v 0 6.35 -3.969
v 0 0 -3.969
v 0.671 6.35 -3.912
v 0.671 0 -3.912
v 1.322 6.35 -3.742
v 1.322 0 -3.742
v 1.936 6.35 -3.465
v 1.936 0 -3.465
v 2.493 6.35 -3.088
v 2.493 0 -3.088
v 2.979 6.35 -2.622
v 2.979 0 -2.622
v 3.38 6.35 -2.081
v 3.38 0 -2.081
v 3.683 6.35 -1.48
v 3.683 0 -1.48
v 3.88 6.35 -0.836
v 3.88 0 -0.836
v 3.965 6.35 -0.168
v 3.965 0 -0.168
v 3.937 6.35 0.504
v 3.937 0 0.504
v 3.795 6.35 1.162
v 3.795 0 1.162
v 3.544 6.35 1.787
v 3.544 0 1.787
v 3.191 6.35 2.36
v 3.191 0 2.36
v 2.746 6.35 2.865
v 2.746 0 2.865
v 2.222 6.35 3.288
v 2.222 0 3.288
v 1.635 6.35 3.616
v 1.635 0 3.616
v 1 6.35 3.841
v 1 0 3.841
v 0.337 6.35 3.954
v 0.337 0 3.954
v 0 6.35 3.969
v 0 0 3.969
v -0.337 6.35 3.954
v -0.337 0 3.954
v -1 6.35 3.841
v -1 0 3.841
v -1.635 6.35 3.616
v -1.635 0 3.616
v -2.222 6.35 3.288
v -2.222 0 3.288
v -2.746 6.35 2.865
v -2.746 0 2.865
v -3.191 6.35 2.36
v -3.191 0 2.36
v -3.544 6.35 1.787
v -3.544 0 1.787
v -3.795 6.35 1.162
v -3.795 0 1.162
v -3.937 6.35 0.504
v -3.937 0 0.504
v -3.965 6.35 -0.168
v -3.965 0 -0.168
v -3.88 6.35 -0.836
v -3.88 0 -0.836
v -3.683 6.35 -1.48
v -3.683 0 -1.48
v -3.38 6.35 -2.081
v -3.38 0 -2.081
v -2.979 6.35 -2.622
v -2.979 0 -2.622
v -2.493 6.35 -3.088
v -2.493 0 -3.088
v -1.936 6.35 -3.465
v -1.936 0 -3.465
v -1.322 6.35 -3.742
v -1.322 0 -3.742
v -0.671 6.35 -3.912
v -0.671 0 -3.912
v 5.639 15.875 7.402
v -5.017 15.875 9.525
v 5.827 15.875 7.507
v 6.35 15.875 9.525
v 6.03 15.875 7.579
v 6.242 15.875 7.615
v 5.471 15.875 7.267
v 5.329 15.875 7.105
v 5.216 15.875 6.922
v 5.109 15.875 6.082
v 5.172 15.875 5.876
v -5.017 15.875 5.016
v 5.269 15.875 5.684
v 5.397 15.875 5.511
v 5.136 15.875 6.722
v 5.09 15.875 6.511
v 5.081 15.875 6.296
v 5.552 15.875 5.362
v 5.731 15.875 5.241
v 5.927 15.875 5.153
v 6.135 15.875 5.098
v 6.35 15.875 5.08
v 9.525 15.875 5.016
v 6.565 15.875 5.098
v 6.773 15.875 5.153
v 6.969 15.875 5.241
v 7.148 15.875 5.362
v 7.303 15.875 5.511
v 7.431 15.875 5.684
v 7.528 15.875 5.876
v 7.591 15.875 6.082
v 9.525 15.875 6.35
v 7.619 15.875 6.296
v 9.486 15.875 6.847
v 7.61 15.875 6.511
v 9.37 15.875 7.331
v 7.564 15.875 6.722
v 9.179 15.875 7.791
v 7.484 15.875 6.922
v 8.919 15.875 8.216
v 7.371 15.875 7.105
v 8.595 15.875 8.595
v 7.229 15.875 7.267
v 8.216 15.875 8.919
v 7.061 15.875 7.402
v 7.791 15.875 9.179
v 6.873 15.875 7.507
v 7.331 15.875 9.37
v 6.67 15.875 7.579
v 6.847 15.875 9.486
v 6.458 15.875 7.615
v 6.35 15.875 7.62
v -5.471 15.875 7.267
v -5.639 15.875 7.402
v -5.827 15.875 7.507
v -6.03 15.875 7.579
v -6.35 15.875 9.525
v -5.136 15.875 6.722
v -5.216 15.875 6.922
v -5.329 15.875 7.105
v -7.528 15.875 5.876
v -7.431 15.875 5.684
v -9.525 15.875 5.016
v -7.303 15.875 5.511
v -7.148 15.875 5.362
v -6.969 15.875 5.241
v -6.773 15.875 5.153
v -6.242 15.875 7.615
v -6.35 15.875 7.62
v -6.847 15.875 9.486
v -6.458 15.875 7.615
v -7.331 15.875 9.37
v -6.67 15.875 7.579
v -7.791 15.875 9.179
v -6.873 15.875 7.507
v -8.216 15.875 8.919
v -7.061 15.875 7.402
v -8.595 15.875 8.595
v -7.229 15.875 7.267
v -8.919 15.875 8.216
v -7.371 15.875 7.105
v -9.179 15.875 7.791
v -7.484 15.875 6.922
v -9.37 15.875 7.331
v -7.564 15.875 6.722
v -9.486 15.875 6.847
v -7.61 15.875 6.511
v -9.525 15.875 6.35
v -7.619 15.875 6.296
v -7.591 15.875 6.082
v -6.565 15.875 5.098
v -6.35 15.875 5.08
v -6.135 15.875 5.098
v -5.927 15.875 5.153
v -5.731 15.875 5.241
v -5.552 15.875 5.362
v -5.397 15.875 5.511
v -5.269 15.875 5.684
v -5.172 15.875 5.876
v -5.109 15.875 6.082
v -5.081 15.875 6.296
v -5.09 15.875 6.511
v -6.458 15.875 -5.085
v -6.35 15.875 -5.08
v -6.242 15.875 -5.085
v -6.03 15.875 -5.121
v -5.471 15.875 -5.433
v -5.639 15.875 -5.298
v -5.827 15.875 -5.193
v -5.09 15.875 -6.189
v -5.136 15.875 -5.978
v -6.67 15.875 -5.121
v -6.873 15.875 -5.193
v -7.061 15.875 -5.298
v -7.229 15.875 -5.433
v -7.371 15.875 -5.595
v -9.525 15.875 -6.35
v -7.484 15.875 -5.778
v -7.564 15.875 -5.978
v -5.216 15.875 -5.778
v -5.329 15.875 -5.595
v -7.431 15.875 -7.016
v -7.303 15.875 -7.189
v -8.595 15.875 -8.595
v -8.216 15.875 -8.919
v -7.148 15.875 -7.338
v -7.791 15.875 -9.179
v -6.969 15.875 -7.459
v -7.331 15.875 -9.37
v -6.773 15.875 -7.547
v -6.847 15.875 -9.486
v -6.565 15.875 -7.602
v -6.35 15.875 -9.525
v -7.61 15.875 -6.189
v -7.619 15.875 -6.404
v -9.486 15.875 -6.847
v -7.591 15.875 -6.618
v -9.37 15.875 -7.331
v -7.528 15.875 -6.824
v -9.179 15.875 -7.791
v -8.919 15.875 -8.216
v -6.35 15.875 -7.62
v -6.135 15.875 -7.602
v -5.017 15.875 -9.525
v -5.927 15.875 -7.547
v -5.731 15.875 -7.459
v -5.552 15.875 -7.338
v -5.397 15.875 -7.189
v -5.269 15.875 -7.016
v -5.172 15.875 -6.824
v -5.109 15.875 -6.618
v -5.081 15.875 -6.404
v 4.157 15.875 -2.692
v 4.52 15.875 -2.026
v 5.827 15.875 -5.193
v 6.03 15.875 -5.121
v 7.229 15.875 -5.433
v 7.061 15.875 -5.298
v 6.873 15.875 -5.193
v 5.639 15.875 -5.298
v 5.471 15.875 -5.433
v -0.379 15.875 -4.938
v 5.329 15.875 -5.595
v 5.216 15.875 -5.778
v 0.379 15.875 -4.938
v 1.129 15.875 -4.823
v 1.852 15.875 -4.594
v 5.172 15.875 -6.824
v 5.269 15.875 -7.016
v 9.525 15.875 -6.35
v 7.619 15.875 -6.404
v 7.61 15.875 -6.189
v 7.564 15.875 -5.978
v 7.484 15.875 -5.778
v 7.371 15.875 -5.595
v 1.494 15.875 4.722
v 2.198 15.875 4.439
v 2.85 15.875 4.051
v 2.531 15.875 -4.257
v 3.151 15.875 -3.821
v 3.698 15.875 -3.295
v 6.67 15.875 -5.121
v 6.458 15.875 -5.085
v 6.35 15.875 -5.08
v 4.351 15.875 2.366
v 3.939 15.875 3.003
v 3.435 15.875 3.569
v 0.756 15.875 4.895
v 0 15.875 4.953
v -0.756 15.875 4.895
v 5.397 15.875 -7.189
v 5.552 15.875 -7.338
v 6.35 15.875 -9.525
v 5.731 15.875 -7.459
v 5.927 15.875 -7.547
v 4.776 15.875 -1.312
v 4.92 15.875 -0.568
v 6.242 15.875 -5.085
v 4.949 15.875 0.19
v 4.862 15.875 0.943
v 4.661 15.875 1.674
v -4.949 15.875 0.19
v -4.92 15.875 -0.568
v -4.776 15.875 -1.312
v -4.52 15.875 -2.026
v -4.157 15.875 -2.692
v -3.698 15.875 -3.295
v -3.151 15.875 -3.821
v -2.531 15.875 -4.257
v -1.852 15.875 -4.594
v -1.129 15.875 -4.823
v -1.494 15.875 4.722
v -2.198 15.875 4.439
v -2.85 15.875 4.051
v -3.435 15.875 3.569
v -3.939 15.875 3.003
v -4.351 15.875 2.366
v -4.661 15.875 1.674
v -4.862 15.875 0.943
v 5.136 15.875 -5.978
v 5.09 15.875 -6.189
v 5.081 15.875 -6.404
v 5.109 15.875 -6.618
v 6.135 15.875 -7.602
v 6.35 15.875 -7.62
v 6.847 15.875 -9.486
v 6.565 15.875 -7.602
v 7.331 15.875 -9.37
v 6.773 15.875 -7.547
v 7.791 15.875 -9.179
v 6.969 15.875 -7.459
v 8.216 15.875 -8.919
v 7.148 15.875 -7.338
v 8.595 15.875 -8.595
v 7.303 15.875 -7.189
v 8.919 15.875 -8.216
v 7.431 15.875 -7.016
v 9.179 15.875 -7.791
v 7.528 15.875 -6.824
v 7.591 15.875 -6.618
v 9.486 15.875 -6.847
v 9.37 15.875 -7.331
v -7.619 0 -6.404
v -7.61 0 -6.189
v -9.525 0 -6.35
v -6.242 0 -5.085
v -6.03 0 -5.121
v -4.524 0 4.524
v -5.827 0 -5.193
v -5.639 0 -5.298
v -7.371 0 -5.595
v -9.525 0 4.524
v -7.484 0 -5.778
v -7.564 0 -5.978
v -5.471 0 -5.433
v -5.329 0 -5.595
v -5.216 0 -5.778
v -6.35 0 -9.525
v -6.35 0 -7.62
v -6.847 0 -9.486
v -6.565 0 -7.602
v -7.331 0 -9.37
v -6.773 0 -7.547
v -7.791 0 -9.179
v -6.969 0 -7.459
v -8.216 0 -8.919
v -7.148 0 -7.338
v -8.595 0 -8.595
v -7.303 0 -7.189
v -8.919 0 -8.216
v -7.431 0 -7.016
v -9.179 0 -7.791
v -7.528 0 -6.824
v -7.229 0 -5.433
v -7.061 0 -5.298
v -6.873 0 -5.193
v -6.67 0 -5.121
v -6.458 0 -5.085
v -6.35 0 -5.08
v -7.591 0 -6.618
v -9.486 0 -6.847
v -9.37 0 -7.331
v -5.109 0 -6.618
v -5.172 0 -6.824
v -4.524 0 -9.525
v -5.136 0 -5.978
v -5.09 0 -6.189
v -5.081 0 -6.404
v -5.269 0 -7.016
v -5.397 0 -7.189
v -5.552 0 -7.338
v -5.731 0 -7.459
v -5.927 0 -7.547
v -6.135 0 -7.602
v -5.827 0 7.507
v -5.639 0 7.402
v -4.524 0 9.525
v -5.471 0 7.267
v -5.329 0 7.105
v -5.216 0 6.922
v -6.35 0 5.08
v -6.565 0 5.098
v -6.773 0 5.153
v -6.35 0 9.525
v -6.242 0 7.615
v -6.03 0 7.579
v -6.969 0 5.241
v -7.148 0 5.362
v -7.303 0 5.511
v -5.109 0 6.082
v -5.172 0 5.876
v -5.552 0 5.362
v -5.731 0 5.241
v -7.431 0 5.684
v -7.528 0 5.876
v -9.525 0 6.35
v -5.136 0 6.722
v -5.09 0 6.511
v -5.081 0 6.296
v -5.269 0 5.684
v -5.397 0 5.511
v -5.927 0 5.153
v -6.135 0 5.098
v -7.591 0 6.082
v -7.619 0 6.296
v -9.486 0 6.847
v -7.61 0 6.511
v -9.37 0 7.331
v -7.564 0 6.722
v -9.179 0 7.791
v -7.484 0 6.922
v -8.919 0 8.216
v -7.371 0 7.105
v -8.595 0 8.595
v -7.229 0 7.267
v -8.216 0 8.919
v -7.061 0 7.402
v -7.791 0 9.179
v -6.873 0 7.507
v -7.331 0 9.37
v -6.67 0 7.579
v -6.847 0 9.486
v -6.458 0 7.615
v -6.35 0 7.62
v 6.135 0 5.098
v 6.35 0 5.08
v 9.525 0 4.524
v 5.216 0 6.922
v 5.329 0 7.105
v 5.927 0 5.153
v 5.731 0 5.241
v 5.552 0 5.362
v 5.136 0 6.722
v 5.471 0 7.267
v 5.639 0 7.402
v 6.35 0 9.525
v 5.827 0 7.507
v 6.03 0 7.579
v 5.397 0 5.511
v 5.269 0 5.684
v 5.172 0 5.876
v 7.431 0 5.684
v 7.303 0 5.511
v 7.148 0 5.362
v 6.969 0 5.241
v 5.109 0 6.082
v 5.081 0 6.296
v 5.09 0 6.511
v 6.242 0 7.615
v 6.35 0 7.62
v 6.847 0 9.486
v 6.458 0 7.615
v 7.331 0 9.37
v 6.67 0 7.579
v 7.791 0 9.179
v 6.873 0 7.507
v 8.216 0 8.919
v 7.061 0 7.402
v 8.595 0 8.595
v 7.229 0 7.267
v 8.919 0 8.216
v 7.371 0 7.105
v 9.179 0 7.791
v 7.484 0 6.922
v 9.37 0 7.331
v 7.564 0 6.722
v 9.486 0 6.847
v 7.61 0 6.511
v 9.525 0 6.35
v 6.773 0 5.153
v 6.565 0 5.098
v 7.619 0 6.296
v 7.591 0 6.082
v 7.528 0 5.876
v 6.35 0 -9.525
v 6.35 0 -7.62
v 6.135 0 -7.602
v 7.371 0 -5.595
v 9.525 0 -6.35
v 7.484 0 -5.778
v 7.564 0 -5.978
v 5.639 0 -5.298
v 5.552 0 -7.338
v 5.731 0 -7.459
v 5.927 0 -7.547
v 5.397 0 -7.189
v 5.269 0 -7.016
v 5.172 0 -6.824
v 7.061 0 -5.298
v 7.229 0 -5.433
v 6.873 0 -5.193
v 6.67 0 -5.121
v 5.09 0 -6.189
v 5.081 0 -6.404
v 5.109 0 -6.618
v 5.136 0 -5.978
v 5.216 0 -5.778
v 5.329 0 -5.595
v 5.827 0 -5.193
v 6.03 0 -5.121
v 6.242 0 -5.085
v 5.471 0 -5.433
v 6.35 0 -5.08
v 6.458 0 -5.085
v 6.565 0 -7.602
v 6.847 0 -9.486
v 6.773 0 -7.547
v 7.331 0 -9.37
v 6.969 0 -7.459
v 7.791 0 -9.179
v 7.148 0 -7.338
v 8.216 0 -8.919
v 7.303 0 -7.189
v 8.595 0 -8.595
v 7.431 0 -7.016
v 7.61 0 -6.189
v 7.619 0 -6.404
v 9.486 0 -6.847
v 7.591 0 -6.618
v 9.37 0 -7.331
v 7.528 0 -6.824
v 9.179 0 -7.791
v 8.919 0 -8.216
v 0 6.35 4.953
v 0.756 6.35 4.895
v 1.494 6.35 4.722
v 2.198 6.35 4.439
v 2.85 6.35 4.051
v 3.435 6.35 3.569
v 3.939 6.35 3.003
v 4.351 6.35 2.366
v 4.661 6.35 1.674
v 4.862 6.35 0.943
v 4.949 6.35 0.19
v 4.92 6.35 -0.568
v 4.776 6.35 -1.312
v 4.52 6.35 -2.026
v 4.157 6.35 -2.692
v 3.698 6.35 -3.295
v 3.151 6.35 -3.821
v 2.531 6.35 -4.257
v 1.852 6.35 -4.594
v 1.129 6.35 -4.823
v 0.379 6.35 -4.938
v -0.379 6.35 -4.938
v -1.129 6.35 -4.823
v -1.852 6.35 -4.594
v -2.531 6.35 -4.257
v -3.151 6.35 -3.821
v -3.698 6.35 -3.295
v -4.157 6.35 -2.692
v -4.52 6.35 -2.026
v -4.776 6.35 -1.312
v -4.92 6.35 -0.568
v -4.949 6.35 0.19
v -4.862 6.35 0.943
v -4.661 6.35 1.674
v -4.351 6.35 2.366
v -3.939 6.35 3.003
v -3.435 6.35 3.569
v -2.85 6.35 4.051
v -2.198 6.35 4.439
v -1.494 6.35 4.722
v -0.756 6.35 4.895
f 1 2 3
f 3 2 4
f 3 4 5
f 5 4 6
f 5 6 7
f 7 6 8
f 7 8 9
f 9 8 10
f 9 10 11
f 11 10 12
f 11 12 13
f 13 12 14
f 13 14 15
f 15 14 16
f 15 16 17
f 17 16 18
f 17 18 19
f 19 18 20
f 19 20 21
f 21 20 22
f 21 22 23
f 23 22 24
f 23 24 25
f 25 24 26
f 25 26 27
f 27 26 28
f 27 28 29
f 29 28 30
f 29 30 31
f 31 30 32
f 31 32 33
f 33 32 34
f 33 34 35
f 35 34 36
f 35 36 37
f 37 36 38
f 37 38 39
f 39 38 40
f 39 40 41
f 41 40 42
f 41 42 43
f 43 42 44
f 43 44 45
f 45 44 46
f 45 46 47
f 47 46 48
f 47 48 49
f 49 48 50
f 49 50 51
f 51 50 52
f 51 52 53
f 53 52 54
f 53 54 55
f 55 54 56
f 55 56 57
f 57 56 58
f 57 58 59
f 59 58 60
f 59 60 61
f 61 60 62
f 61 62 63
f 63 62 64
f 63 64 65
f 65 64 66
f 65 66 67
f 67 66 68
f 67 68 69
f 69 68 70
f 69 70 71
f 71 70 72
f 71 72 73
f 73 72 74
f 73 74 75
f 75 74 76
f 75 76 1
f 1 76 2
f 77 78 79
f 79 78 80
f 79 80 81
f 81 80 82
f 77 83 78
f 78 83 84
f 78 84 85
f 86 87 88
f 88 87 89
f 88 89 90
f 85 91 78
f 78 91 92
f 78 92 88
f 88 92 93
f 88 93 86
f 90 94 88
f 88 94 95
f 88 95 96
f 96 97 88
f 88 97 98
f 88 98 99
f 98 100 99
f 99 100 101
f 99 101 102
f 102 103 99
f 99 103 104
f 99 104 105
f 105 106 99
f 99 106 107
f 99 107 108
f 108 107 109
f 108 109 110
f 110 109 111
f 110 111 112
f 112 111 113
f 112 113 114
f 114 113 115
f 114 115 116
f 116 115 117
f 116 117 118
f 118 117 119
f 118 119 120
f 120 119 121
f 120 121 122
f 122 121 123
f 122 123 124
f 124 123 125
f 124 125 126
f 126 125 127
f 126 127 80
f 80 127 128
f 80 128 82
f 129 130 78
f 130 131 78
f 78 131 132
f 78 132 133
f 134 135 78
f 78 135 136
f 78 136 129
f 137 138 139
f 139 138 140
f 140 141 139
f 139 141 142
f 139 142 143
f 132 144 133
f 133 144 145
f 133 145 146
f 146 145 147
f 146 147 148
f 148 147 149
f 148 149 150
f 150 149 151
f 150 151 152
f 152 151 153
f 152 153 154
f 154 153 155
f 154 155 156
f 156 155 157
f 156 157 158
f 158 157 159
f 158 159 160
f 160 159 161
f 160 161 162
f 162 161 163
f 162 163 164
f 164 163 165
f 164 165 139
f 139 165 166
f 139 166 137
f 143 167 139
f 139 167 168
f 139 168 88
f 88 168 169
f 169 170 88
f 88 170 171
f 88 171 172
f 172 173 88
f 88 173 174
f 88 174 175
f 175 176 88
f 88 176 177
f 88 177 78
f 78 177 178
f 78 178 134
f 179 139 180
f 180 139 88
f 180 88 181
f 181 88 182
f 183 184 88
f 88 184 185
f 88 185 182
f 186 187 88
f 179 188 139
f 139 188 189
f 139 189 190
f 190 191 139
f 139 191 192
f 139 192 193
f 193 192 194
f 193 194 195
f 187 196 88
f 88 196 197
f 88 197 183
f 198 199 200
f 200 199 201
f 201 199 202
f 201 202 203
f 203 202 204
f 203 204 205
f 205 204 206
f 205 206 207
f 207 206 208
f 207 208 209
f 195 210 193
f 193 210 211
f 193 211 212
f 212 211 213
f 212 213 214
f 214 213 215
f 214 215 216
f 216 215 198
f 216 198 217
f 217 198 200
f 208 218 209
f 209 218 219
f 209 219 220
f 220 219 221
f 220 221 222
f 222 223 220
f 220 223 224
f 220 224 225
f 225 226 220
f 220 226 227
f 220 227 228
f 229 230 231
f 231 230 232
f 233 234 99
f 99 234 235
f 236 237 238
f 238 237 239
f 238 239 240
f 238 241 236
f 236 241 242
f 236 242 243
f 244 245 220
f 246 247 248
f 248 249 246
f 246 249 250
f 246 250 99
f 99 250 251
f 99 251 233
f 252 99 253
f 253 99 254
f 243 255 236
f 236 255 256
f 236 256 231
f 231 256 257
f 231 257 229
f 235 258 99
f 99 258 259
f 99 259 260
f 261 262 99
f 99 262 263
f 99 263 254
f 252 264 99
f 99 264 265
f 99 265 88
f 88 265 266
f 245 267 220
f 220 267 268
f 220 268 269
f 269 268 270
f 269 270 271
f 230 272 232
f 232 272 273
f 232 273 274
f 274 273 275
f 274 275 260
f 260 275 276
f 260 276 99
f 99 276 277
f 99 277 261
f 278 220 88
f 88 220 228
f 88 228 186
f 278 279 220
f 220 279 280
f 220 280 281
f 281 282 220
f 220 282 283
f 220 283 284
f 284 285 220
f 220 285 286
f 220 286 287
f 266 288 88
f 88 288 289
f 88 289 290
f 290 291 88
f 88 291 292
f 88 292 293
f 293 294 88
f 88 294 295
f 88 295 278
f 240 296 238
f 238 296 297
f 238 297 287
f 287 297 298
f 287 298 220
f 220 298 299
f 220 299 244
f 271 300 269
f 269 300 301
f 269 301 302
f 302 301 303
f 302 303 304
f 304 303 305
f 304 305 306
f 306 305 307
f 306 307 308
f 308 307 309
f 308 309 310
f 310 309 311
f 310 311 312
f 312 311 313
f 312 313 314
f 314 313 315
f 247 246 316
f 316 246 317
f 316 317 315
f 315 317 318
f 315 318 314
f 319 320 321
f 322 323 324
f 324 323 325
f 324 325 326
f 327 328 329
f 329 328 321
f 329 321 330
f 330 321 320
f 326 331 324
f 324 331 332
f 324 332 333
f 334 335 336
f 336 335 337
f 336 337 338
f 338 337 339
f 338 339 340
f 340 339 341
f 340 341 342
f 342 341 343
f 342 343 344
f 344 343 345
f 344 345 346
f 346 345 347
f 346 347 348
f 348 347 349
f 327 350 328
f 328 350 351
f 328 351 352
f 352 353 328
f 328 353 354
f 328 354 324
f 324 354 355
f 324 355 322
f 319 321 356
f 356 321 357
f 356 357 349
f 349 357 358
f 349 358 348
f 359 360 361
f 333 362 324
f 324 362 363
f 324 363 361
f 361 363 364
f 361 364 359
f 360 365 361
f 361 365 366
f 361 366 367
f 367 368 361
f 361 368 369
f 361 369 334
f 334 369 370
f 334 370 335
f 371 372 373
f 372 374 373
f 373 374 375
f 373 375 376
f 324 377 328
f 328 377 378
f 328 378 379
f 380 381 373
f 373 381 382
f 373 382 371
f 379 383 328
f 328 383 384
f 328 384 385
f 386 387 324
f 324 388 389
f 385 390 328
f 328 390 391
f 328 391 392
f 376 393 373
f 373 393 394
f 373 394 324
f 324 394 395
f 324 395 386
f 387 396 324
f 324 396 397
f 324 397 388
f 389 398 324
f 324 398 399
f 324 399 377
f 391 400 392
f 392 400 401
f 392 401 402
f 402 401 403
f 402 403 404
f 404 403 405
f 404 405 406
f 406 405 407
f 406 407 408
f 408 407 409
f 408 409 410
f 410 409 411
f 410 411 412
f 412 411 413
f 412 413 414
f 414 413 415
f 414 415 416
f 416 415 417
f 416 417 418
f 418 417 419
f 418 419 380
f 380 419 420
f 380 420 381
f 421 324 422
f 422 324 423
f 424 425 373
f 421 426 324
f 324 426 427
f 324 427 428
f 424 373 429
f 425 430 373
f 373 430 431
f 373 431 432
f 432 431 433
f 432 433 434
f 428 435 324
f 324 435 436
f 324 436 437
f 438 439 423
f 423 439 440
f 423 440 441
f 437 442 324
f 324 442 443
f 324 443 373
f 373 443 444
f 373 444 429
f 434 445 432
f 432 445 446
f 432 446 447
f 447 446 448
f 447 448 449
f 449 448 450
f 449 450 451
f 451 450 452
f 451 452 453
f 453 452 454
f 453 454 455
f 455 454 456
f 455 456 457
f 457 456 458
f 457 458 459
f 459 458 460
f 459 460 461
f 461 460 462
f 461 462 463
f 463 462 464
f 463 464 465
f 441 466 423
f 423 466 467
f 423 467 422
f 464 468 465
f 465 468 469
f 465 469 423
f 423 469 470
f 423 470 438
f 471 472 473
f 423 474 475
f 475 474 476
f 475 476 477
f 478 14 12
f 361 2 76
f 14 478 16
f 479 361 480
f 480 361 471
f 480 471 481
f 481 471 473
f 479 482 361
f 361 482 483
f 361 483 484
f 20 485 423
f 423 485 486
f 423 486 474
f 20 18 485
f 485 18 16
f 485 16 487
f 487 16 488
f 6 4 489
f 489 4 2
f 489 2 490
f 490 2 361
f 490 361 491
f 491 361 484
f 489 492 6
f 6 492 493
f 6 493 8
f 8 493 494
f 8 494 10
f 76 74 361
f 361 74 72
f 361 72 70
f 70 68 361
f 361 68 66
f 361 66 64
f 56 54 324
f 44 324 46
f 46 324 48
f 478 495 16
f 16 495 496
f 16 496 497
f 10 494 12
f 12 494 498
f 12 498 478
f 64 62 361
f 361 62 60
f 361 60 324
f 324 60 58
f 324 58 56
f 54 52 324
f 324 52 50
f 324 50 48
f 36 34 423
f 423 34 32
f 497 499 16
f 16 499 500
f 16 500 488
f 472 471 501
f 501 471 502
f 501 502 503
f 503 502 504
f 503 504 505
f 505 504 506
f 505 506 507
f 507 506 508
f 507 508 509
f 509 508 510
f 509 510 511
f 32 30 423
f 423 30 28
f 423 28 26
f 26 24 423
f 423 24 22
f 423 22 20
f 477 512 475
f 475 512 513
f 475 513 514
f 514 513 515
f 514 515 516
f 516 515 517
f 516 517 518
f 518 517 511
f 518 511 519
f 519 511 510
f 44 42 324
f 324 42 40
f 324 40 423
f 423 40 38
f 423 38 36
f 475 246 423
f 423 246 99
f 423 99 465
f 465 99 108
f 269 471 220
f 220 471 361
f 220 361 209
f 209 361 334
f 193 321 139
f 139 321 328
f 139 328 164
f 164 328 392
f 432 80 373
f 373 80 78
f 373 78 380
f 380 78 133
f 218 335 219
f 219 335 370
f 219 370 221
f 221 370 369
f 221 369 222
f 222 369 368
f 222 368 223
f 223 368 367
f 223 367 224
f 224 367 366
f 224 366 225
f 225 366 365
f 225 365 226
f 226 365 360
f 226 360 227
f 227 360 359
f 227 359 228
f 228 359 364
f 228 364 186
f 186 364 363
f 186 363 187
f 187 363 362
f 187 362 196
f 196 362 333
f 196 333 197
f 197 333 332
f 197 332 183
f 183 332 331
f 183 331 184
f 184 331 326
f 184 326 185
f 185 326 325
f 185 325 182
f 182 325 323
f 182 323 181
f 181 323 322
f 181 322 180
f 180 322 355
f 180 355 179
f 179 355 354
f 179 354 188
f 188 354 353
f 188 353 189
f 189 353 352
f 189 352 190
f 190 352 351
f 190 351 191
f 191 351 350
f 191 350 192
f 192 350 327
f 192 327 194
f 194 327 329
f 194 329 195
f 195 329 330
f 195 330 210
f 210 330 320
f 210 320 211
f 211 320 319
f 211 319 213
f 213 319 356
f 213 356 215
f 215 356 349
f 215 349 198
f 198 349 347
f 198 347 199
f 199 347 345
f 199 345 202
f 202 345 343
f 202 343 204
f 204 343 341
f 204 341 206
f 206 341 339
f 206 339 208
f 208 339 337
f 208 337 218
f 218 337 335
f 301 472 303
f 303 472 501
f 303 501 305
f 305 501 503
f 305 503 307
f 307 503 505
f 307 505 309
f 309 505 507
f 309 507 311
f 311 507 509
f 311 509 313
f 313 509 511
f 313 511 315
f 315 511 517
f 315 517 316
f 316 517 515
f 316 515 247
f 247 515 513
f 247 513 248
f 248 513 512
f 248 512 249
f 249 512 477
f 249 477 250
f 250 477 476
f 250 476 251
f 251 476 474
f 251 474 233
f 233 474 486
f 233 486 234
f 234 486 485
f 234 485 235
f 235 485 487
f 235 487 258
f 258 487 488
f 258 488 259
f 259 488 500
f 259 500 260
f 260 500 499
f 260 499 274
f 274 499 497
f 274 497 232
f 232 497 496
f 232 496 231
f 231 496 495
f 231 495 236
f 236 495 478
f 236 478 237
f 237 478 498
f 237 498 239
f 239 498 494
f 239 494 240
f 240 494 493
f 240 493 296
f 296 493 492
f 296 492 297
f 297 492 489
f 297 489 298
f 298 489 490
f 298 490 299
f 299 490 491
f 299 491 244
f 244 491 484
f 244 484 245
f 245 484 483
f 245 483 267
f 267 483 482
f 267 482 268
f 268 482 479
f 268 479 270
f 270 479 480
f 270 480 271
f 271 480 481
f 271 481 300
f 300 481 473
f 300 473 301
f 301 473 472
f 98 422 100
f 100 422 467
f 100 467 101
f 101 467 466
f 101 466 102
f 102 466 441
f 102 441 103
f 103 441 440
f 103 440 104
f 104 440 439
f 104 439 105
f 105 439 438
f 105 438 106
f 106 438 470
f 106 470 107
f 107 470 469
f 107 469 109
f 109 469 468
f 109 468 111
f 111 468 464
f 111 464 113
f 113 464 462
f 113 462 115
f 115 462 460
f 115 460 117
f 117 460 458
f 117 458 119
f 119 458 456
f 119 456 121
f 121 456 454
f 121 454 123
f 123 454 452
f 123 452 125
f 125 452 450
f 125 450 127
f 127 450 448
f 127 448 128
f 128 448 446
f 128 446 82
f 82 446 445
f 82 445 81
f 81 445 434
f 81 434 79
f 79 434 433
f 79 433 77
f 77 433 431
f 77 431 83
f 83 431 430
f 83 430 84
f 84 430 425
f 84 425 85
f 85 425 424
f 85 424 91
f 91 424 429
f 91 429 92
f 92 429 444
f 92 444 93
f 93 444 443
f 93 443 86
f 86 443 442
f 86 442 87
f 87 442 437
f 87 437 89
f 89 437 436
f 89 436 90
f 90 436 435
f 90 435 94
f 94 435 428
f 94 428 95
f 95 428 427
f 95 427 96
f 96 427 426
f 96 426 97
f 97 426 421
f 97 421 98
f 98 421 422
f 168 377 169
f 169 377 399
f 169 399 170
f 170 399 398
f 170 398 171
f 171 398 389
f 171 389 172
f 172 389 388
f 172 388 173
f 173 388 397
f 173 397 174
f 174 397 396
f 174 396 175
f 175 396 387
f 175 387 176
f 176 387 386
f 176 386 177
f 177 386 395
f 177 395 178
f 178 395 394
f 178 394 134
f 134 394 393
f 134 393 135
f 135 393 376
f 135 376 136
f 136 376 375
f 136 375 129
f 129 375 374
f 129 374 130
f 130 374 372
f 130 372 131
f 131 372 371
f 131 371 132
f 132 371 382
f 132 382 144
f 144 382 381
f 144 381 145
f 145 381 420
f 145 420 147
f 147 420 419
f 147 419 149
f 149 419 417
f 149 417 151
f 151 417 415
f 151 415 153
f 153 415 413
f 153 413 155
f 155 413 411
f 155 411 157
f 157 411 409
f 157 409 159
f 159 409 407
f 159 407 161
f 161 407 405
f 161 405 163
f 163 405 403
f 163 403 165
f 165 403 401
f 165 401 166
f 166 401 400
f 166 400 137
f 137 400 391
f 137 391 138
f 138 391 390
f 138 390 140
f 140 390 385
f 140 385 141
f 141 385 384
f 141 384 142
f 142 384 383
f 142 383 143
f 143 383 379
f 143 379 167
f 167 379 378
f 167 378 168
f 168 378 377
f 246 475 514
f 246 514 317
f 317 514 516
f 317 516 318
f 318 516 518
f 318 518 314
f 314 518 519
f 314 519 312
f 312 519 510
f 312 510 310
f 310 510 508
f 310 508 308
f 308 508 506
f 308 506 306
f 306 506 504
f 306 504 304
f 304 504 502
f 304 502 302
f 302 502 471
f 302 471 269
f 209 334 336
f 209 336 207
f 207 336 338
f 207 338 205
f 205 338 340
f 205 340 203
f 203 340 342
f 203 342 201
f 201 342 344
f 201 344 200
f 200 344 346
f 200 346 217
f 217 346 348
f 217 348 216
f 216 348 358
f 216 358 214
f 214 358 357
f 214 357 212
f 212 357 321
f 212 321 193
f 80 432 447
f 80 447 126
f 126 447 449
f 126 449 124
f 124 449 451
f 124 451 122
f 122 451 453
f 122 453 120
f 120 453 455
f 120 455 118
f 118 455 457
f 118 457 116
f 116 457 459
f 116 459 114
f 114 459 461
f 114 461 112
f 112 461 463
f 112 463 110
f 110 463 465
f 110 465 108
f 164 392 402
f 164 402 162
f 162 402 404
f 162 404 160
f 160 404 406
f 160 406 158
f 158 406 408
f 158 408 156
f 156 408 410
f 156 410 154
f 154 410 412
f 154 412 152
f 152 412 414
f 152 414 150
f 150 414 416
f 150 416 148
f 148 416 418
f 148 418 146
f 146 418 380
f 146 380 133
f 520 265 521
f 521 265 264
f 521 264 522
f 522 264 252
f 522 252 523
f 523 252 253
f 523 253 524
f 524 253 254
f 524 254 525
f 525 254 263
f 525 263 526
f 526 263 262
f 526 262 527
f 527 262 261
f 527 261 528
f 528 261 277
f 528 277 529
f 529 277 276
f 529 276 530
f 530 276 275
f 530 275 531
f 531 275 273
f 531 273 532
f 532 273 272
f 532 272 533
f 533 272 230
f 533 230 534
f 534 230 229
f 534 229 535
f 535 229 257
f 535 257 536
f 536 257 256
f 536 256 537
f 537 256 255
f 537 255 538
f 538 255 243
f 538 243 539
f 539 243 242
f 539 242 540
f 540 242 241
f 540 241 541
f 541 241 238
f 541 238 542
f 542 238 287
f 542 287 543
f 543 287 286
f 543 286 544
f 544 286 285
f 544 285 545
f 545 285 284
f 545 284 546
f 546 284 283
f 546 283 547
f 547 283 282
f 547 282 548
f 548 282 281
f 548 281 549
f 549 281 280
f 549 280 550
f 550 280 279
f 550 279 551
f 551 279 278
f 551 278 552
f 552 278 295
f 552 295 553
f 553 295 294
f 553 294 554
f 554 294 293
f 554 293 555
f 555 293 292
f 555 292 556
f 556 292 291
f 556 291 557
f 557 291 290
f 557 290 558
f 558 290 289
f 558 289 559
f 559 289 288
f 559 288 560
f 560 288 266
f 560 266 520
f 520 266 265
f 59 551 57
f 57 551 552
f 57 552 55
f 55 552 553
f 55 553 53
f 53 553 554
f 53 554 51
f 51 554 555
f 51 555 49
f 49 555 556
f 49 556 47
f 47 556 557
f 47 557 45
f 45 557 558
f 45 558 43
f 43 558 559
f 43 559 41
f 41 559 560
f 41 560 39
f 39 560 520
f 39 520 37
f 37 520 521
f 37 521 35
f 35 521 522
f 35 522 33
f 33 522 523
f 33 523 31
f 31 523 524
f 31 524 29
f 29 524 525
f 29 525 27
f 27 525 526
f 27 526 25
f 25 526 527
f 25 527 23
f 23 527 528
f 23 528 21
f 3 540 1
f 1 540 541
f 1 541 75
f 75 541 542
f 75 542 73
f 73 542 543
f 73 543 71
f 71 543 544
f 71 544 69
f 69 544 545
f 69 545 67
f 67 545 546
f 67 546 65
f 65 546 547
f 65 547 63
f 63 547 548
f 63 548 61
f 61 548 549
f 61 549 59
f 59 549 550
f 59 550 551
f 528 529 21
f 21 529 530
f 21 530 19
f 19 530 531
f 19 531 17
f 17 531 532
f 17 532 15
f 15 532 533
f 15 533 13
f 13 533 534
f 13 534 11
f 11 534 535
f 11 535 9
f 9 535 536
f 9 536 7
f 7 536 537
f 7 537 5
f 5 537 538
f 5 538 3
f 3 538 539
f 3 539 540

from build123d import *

# Parameters (mm, degrees)
SKETCH1_W           = 19.05
SKETCH1_H           = 19.05
SKETCH1_R           = 1.27
SKETCH1_R_2         = 3.96875
BOSS_EXTRUDE1_DEPTH = 15.875
FILLET2_R           = 3.175
SKETCH3_R           = 4.953
CUT_EXTRUDE1_DEPTH  = 9.525


with BuildPart() as part:
    # Sketch1 → Boss-Extrude1 (new body)
    with BuildSketch(Plane(origin=(0, 0, 0), x_dir=(1, 0, 0), z_dir=(0, 1, 0))):
        Rectangle(SKETCH1_W, SKETCH1_H)
        with Locations(Location((-6.35, 6.35, 0), (0, 0, 270))):
            Circle(SKETCH1_R, mode=Mode.SUBTRACT)
        with Locations(Location((6.35, 6.35, 0), (0, 0, 270))):
            Circle(SKETCH1_R, mode=Mode.SUBTRACT)
        with Locations(Location((6.35, -6.35, 0), (0, 0, 270))):
            Circle(SKETCH1_R, mode=Mode.SUBTRACT)
        with Locations(Location((-6.35, -6.35, 0), (0, 0, 270))):
            Circle(SKETCH1_R, mode=Mode.SUBTRACT)
        with Locations(Location((0, 0, 0), (0, 0, 270))):
            Circle(SKETCH1_R_2, mode=Mode.SUBTRACT)
    extrude(amount=BOSS_EXTRUDE1_DEPTH)

    # Fillet2
    fillet2_edges = [part.edges().sort_by_distance(p)[0] for p in [
        (9.525, 7.9375, 9.525),
        (-9.525, 7.9375, 9.525),
        (-9.525, 7.9375, -9.525),
        (9.525, 7.9375, -9.525),
    ]]
    fillet(fillet2_edges, radius=FILLET2_R)

    # Sketch3 → Cut-Extrude1 (cut)
    with BuildSketch(Plane(origin=(0, 15.875, 0), x_dir=(1, 0, 0), z_dir=(0, 1, 0))):
        with Locations(Location((0, 0, 0), (0, 0, 270))):
            Circle(SKETCH3_R)
    extrude(amount=-CUT_EXTRUDE1_DEPTH, mode=Mode.SUBTRACT)


solid = part.part
